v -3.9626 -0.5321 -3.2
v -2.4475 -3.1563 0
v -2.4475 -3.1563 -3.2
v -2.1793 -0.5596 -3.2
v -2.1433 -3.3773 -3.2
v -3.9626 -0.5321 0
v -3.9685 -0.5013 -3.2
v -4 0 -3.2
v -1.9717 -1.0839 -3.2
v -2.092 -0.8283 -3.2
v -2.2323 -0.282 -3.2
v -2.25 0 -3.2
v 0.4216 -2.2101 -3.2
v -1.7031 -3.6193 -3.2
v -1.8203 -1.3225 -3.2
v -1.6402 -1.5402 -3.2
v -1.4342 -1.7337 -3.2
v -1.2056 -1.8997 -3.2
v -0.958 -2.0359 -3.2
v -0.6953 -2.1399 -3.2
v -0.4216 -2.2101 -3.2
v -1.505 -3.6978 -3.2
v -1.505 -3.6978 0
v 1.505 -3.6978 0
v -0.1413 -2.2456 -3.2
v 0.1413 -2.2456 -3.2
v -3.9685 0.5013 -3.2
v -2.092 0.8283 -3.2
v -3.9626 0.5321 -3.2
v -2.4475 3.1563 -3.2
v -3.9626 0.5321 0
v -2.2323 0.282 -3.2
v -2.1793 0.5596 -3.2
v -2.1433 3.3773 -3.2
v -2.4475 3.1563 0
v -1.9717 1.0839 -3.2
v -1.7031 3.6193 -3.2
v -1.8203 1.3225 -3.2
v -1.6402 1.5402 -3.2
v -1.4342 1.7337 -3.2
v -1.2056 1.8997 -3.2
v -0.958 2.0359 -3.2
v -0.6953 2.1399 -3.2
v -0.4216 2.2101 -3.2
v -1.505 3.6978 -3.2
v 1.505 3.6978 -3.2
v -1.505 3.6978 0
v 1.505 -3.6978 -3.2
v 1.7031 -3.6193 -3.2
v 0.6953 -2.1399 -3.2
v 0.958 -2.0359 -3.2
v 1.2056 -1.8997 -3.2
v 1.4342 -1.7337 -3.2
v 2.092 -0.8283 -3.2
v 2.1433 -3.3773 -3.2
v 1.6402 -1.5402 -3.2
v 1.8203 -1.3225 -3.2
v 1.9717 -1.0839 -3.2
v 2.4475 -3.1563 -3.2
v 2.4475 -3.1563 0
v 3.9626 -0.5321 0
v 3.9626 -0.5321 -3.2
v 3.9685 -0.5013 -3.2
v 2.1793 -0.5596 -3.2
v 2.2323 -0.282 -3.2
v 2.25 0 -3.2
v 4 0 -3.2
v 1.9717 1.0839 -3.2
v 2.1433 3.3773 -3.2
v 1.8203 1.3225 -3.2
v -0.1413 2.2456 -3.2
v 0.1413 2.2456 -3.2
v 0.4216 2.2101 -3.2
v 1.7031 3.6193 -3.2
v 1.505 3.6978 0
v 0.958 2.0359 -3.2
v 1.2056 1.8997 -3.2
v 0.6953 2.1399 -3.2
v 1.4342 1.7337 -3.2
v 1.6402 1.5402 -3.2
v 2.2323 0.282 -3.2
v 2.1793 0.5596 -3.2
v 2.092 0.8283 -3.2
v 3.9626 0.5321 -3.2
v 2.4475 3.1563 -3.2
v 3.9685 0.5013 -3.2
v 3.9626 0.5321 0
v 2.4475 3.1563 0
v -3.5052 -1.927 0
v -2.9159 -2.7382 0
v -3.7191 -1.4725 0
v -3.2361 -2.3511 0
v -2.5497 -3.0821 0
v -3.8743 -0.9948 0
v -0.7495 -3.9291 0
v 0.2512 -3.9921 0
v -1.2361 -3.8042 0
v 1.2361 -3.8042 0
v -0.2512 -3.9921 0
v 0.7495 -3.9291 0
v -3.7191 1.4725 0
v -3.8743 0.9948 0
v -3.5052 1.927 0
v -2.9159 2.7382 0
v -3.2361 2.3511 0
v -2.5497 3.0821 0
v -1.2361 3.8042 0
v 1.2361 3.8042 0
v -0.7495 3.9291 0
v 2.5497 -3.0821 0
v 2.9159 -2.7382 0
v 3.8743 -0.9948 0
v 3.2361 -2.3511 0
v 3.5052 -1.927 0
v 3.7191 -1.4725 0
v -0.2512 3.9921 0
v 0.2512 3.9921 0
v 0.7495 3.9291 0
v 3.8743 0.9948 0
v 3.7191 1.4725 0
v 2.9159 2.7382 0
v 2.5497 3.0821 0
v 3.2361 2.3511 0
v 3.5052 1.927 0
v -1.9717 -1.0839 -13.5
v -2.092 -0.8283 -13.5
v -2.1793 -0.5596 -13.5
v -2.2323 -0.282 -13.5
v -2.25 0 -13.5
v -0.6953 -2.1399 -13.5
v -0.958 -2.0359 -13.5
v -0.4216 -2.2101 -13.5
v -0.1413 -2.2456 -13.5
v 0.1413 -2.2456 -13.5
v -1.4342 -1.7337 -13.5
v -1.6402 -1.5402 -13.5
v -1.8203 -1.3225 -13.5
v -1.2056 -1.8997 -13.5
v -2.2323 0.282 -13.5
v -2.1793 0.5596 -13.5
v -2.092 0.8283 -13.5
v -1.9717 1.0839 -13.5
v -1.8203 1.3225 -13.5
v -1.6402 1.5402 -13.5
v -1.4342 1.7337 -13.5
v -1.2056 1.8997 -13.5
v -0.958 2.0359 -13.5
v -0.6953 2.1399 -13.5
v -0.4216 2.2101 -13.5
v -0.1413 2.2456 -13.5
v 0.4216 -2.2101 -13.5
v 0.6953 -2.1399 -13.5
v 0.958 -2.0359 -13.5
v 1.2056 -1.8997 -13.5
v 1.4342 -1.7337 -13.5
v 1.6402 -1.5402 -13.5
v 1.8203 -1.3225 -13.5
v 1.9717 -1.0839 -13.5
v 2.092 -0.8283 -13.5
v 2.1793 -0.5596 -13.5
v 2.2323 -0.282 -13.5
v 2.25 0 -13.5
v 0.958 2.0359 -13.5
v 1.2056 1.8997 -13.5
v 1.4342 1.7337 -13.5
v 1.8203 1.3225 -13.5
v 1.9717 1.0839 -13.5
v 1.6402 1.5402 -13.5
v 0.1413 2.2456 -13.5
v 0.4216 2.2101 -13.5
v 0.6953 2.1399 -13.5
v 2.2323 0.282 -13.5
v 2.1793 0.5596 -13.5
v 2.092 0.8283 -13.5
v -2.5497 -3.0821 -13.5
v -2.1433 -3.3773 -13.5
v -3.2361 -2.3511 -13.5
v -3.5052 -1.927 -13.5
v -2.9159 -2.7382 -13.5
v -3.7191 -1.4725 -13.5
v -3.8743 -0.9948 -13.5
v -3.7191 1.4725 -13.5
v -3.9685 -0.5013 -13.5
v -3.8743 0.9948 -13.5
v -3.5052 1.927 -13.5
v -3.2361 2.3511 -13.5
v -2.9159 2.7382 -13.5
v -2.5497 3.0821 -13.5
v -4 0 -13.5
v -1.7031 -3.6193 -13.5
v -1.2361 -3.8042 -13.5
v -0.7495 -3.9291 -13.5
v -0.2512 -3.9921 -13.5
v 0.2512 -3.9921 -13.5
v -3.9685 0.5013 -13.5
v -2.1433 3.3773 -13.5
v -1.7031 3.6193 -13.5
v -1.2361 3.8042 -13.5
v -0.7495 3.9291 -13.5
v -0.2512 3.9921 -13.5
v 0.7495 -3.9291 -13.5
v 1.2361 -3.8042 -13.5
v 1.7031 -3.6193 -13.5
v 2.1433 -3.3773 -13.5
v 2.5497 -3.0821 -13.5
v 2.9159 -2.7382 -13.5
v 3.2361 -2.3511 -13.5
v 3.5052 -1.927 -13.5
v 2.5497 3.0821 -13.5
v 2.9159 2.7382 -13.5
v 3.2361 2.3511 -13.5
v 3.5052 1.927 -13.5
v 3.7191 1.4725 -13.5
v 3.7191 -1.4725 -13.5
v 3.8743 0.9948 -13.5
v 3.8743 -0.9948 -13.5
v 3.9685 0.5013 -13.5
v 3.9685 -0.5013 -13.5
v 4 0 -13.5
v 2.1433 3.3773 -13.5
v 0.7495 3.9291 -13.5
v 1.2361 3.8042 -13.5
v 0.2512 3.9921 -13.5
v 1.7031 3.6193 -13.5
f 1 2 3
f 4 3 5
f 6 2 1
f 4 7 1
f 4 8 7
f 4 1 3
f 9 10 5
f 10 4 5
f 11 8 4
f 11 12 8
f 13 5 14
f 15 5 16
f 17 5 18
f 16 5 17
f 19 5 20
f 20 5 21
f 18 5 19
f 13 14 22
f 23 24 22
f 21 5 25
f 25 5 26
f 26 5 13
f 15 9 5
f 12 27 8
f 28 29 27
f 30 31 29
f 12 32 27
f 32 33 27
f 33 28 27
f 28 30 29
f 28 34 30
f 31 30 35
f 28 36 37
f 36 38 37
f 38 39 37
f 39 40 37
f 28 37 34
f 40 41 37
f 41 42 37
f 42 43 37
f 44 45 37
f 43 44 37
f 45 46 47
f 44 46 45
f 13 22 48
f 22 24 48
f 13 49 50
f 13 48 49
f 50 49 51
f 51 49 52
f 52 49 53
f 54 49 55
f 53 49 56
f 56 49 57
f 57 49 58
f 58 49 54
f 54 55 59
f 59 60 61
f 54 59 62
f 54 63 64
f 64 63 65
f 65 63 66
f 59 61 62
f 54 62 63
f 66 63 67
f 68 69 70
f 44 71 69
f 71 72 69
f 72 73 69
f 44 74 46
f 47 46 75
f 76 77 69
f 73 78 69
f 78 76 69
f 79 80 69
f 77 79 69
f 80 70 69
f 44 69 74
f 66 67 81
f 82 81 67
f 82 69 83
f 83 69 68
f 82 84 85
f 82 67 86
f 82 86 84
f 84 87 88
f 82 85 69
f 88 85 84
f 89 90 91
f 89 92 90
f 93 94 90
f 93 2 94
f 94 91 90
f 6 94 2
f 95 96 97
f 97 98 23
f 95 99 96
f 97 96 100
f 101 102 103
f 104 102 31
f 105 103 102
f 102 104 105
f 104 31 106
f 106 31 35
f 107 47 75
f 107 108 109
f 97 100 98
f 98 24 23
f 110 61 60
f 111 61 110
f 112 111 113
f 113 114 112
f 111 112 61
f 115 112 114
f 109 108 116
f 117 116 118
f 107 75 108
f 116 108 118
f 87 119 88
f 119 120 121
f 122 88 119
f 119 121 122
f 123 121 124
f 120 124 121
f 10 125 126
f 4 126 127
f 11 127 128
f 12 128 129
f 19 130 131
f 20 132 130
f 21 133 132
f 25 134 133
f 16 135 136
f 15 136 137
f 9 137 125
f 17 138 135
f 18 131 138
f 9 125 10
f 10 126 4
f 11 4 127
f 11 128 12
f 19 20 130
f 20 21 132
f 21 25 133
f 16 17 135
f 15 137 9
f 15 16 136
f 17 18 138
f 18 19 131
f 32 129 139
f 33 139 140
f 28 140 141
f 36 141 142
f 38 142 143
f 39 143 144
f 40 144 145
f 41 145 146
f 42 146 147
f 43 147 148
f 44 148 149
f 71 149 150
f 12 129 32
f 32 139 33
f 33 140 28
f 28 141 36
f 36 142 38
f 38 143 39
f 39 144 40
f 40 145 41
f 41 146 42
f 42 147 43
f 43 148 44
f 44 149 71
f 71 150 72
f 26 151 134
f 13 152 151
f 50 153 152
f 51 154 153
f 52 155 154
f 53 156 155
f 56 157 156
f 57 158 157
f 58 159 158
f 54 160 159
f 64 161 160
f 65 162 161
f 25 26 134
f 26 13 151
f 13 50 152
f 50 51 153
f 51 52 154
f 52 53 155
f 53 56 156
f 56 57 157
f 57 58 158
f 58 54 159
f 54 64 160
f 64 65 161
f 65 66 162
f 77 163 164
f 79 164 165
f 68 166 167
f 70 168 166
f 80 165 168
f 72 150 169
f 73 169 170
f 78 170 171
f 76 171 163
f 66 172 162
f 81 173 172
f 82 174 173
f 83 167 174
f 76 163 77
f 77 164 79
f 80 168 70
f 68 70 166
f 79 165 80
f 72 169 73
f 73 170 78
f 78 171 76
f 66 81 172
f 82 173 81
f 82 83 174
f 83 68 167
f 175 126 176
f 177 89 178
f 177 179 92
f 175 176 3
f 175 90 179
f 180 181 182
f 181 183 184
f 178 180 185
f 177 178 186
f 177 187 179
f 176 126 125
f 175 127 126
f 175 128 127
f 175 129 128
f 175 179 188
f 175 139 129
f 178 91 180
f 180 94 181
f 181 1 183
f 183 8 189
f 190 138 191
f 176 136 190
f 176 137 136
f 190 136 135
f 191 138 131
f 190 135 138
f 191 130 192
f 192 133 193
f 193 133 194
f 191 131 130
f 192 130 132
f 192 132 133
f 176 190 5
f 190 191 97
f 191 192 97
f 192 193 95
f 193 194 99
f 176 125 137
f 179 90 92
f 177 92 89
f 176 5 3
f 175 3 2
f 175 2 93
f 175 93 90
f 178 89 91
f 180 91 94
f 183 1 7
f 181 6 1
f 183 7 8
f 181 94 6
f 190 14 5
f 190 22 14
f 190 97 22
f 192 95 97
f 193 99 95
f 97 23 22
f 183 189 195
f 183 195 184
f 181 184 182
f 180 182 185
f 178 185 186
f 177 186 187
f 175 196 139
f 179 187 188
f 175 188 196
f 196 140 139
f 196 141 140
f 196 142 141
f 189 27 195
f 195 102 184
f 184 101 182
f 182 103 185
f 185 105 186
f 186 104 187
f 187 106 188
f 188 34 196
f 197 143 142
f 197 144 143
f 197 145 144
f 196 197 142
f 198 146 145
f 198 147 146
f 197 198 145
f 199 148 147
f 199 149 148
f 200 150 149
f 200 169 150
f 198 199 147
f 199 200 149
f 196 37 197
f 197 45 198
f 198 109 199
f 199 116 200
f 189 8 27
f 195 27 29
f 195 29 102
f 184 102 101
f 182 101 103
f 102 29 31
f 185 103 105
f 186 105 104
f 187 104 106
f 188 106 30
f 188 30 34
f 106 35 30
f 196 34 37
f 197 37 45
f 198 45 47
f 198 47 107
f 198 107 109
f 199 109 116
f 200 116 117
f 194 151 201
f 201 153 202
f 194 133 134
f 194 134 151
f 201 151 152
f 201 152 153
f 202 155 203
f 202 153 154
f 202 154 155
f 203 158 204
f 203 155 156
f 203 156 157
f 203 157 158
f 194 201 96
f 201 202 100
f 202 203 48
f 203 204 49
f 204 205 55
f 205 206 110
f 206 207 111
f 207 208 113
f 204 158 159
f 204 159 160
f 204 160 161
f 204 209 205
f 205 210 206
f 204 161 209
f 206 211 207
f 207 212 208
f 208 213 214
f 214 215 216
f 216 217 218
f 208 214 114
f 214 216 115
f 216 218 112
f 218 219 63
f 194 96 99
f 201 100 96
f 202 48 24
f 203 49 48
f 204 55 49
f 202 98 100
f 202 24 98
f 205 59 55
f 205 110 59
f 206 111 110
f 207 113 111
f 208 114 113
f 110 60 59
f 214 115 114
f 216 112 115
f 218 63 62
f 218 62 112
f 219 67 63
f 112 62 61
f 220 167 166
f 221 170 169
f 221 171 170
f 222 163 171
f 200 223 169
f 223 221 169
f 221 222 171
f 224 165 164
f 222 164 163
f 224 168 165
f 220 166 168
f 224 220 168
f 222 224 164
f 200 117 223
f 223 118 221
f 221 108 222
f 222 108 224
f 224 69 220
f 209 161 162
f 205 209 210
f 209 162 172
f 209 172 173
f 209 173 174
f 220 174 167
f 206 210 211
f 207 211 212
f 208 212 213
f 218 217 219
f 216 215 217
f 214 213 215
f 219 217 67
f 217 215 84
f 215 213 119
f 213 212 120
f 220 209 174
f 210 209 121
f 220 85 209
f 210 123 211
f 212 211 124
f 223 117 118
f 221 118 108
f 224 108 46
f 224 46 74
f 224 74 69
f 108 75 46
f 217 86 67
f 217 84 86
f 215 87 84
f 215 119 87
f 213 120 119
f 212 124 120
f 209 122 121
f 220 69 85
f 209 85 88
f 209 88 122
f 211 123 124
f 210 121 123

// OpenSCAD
$fn = 50;

difference() {
	union() {
		translate(v = [0, 0, -13.5]) {
			cylinder(h = 16.5, r = 4.0);
		}
	}
	union() {
		translate(v = [0, 0, 0]) {
			rotate(a = [0, 0, 0]) {
				difference() {
					union() {
						translate(v = [0, 0, -3.2]) {
							linear_extrude(height = 3.2) {
								polygon(points = [[4.2698, 0.0], [2.1349000000000005, 3.697755269078796], [-2.134899999999999, 3.6977552690787965], [-4.2698, 5.228996902999369e-16], [-2.134900000000002, -3.6977552690787956], [2.1348999999999974, -3.697755269078798]]);
							}
						}
					}
					union();
				}
			}
		}
		#cylinder(h = 3, r = 5.0);
		#translate(v = [0, 0, -100.0]) {
			cylinder(h = 200, r = 2.25);
		}
	}
}
